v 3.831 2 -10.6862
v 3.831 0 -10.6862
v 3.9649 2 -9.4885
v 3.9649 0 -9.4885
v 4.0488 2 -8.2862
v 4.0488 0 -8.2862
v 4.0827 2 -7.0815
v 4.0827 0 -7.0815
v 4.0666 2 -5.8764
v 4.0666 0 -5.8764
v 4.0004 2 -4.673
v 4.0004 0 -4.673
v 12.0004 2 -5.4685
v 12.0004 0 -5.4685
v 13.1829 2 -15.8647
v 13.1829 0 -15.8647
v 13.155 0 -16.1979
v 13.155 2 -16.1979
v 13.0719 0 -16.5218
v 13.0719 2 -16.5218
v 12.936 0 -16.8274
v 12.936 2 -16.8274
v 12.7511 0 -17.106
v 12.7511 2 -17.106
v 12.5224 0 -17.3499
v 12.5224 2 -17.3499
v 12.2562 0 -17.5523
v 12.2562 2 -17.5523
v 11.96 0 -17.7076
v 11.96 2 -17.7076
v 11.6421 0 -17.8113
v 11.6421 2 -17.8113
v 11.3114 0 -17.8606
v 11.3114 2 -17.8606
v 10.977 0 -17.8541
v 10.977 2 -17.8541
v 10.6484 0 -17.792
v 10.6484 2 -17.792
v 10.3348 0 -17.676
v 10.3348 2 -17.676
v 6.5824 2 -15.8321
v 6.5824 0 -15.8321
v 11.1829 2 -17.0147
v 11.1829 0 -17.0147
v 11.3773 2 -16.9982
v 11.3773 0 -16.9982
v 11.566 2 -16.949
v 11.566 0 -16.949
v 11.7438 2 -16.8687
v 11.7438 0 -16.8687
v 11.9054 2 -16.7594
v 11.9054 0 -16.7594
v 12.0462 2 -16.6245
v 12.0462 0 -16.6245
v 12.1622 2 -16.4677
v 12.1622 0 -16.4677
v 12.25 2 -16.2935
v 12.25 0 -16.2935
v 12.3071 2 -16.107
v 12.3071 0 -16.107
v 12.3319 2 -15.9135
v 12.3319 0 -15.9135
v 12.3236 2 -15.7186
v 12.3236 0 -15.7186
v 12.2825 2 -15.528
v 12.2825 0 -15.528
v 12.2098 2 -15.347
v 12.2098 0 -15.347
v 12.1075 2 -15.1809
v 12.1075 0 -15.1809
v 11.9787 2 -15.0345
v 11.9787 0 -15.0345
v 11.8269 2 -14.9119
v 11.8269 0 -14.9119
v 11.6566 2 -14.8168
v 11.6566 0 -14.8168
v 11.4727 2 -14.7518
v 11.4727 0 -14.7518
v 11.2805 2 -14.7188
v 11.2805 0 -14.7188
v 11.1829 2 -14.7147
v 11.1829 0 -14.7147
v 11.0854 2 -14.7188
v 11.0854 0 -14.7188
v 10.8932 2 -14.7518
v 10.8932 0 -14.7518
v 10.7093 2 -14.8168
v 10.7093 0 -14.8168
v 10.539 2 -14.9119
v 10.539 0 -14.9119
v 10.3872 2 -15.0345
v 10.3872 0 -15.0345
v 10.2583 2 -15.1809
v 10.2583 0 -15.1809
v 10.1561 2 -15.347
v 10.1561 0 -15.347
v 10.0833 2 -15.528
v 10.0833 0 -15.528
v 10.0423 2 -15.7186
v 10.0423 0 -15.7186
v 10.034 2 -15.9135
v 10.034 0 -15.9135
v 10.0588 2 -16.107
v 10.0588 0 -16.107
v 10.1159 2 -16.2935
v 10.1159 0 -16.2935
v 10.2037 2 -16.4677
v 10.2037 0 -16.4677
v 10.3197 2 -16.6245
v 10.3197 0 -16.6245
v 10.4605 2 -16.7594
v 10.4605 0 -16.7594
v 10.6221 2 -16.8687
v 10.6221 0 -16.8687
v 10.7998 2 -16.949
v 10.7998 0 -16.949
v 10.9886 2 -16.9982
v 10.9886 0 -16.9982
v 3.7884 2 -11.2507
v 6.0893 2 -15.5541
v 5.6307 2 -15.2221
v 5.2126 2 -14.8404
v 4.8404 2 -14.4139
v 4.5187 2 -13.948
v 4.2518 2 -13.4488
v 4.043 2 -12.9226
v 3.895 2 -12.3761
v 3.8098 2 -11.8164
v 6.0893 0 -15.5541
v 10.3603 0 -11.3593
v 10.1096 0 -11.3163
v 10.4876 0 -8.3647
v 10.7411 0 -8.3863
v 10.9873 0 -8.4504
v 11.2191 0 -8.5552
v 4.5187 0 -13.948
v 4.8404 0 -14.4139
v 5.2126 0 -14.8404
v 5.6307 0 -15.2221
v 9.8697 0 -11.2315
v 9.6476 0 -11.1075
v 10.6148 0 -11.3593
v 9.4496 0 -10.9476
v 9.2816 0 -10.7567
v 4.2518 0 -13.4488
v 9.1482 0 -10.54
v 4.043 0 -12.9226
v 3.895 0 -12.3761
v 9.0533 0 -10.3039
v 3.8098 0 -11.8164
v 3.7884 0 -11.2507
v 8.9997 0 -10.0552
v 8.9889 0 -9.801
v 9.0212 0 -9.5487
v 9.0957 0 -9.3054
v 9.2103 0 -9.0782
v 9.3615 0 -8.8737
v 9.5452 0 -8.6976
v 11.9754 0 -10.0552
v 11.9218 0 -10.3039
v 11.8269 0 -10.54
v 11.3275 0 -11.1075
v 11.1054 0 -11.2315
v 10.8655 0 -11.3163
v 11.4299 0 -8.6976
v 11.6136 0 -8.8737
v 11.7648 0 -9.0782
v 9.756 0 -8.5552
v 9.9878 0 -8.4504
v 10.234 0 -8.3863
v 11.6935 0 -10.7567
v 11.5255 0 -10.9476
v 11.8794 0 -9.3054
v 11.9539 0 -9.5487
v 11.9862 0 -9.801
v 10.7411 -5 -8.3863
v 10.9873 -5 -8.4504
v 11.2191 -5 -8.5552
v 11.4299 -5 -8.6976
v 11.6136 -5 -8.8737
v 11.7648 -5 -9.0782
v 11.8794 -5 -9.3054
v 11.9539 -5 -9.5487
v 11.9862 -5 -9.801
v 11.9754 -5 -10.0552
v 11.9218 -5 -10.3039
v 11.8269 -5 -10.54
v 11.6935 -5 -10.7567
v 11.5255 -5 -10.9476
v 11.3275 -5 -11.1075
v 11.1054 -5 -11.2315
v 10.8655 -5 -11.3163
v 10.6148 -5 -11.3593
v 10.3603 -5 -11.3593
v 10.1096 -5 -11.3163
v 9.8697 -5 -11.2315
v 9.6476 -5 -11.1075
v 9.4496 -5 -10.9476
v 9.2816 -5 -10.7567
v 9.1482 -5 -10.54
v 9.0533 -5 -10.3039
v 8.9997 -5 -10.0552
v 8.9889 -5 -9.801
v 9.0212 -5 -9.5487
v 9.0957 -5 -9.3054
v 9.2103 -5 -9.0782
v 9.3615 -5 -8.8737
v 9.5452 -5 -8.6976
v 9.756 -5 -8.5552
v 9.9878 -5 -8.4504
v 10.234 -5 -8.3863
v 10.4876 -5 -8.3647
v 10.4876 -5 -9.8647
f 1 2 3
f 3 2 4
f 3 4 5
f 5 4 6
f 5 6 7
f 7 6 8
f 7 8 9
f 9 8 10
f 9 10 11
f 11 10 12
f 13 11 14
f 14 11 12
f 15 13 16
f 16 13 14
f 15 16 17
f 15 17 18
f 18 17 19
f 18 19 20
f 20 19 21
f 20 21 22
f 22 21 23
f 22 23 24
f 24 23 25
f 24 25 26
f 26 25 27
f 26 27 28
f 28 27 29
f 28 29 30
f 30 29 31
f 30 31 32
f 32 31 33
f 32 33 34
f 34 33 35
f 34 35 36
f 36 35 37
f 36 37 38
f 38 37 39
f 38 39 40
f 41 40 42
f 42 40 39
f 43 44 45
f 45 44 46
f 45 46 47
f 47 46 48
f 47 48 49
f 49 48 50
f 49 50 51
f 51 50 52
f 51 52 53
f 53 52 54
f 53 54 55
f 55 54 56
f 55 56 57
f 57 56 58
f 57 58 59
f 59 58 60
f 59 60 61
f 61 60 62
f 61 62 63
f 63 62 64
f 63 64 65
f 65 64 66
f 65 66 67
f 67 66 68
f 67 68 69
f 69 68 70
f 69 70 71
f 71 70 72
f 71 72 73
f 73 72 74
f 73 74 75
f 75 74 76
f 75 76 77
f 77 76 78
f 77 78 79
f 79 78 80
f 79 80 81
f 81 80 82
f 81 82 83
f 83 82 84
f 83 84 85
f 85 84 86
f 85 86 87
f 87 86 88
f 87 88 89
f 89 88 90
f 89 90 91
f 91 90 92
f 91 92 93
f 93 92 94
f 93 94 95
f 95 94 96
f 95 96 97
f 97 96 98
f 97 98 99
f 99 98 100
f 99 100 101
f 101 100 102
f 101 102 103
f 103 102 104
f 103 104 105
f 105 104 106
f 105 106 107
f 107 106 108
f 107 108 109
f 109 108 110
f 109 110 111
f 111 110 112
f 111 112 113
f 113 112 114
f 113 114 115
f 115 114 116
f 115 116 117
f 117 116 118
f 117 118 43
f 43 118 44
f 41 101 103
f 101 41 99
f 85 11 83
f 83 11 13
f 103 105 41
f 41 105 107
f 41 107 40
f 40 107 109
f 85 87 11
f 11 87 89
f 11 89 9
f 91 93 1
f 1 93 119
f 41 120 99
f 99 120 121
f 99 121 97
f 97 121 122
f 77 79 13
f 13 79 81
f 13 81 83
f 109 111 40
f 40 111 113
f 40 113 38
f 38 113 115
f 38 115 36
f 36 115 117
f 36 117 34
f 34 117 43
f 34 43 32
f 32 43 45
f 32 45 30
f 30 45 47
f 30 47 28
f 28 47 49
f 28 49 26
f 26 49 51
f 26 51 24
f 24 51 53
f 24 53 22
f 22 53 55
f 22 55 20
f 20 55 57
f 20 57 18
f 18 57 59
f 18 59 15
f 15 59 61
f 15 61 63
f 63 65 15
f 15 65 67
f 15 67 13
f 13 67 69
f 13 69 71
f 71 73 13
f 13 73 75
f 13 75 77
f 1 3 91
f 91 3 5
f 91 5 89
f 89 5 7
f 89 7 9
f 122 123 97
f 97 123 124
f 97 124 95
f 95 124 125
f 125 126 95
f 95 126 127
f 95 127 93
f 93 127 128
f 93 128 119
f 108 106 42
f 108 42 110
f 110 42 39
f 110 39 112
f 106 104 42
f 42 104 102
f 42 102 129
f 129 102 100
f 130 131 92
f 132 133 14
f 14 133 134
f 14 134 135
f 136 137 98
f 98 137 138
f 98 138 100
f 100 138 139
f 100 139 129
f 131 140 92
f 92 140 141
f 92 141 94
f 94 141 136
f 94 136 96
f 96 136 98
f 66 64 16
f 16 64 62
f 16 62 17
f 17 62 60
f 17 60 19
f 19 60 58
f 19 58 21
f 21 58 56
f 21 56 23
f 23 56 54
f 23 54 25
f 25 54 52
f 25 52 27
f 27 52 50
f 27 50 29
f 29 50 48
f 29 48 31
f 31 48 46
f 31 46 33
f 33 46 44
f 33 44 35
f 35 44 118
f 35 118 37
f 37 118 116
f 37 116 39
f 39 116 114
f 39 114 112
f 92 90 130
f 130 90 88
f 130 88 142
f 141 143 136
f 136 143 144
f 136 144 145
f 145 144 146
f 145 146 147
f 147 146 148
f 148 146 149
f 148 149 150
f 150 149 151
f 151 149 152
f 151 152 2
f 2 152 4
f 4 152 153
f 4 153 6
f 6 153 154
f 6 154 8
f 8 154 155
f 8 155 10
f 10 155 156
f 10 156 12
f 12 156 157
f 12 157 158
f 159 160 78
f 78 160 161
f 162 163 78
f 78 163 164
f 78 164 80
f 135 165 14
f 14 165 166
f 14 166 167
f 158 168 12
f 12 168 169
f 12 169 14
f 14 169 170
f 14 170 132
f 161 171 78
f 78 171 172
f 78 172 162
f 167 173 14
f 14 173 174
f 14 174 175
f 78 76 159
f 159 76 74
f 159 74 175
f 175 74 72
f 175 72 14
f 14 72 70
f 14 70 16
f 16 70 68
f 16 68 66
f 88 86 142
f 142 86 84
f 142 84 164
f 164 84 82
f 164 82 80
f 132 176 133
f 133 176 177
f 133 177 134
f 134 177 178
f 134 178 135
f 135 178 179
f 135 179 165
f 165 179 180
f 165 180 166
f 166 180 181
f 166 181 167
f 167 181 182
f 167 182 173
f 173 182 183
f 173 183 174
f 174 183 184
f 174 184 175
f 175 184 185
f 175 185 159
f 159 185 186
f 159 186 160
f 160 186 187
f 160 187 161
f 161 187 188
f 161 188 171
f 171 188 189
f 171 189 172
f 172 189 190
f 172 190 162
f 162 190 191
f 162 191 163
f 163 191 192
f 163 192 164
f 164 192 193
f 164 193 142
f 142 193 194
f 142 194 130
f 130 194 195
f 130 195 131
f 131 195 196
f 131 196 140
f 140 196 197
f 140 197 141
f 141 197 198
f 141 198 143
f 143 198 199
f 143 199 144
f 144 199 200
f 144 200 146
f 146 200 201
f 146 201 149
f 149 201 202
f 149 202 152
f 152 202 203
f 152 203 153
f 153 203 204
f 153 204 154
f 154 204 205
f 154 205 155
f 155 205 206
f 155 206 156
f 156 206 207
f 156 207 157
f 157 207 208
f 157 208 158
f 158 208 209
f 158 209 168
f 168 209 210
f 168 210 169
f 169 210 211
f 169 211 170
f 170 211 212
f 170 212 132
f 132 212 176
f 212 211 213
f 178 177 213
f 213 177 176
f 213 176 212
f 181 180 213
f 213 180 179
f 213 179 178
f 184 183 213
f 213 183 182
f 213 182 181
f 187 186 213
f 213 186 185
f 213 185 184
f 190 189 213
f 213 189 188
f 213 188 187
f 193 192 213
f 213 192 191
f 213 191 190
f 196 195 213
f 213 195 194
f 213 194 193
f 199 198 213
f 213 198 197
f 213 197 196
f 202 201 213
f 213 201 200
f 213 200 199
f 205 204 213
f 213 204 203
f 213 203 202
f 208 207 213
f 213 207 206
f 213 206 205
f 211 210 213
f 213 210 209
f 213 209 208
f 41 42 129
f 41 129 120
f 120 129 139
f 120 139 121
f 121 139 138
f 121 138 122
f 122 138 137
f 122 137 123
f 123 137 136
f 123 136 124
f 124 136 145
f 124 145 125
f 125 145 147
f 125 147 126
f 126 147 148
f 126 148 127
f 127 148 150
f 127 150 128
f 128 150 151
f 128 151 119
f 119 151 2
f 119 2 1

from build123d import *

# Parameters (mm, degrees)
SKETCH2_R           = 1.15
BOSS_EXTRUDE1_DEPTH = 2
SKETCH3_R           = 1.5
BOSS_EXTRUDE2_DEPTH = 5
FILLET1_R           = 5


with BuildPart() as part:
    # Sketch2 → Boss-Extrude1 (new body)
    with BuildSketch(Plane(origin=(0, 0, 0), x_dir=(1, 0, 0), z_dir=(0, 1, 0))):
        with BuildLine():
            Line((4.000381204, 4.673041052), (12.000381204, 5.468452872))
            Line((12.000381204, 5.468452872), (13.182938655, 15.86470146))
            ThreePointArc((13.182938655, 15.86470146), (12.256191848, 17.552341108), (10.334811071, 17.675966101))
            Line((10.334811071, 17.675966101), (3.154801126, 14.147870696))
            ThreePointArc((3.154801126, 14.147870696), (3.968738574, 9.44536378), (4.000381204, 4.673041052))
        make_face()
        with Locations(Location((11.182938655, 15.86470146, 0), (0, 0, 270))):
            Circle(SKETCH2_R, mode=Mode.SUBTRACT)
    extrude(amount=BOSS_EXTRUDE1_DEPTH)

    # Sketch3 → Boss-Extrude2 (add)
    with BuildSketch(Plane(origin=(0, 0, 0), x_dir=(1, 0, 0), z_dir=(0, 1, 0))):
        with Locations(Location((10.487550657, 9.86470146, 0), (0, 0, 270))):
            Circle(SKETCH3_R)
    extrude(amount=-BOSS_EXTRUDE2_DEPTH)

    # Fillet1
    fillet1_edges = [part.edges().sort_by_distance(p)[0] for p in [
        (3.154801126, 1, -14.147870696),
    ]]
    fillet(fillet1_edges, radius=FILLET1_R)


solid = part.part
